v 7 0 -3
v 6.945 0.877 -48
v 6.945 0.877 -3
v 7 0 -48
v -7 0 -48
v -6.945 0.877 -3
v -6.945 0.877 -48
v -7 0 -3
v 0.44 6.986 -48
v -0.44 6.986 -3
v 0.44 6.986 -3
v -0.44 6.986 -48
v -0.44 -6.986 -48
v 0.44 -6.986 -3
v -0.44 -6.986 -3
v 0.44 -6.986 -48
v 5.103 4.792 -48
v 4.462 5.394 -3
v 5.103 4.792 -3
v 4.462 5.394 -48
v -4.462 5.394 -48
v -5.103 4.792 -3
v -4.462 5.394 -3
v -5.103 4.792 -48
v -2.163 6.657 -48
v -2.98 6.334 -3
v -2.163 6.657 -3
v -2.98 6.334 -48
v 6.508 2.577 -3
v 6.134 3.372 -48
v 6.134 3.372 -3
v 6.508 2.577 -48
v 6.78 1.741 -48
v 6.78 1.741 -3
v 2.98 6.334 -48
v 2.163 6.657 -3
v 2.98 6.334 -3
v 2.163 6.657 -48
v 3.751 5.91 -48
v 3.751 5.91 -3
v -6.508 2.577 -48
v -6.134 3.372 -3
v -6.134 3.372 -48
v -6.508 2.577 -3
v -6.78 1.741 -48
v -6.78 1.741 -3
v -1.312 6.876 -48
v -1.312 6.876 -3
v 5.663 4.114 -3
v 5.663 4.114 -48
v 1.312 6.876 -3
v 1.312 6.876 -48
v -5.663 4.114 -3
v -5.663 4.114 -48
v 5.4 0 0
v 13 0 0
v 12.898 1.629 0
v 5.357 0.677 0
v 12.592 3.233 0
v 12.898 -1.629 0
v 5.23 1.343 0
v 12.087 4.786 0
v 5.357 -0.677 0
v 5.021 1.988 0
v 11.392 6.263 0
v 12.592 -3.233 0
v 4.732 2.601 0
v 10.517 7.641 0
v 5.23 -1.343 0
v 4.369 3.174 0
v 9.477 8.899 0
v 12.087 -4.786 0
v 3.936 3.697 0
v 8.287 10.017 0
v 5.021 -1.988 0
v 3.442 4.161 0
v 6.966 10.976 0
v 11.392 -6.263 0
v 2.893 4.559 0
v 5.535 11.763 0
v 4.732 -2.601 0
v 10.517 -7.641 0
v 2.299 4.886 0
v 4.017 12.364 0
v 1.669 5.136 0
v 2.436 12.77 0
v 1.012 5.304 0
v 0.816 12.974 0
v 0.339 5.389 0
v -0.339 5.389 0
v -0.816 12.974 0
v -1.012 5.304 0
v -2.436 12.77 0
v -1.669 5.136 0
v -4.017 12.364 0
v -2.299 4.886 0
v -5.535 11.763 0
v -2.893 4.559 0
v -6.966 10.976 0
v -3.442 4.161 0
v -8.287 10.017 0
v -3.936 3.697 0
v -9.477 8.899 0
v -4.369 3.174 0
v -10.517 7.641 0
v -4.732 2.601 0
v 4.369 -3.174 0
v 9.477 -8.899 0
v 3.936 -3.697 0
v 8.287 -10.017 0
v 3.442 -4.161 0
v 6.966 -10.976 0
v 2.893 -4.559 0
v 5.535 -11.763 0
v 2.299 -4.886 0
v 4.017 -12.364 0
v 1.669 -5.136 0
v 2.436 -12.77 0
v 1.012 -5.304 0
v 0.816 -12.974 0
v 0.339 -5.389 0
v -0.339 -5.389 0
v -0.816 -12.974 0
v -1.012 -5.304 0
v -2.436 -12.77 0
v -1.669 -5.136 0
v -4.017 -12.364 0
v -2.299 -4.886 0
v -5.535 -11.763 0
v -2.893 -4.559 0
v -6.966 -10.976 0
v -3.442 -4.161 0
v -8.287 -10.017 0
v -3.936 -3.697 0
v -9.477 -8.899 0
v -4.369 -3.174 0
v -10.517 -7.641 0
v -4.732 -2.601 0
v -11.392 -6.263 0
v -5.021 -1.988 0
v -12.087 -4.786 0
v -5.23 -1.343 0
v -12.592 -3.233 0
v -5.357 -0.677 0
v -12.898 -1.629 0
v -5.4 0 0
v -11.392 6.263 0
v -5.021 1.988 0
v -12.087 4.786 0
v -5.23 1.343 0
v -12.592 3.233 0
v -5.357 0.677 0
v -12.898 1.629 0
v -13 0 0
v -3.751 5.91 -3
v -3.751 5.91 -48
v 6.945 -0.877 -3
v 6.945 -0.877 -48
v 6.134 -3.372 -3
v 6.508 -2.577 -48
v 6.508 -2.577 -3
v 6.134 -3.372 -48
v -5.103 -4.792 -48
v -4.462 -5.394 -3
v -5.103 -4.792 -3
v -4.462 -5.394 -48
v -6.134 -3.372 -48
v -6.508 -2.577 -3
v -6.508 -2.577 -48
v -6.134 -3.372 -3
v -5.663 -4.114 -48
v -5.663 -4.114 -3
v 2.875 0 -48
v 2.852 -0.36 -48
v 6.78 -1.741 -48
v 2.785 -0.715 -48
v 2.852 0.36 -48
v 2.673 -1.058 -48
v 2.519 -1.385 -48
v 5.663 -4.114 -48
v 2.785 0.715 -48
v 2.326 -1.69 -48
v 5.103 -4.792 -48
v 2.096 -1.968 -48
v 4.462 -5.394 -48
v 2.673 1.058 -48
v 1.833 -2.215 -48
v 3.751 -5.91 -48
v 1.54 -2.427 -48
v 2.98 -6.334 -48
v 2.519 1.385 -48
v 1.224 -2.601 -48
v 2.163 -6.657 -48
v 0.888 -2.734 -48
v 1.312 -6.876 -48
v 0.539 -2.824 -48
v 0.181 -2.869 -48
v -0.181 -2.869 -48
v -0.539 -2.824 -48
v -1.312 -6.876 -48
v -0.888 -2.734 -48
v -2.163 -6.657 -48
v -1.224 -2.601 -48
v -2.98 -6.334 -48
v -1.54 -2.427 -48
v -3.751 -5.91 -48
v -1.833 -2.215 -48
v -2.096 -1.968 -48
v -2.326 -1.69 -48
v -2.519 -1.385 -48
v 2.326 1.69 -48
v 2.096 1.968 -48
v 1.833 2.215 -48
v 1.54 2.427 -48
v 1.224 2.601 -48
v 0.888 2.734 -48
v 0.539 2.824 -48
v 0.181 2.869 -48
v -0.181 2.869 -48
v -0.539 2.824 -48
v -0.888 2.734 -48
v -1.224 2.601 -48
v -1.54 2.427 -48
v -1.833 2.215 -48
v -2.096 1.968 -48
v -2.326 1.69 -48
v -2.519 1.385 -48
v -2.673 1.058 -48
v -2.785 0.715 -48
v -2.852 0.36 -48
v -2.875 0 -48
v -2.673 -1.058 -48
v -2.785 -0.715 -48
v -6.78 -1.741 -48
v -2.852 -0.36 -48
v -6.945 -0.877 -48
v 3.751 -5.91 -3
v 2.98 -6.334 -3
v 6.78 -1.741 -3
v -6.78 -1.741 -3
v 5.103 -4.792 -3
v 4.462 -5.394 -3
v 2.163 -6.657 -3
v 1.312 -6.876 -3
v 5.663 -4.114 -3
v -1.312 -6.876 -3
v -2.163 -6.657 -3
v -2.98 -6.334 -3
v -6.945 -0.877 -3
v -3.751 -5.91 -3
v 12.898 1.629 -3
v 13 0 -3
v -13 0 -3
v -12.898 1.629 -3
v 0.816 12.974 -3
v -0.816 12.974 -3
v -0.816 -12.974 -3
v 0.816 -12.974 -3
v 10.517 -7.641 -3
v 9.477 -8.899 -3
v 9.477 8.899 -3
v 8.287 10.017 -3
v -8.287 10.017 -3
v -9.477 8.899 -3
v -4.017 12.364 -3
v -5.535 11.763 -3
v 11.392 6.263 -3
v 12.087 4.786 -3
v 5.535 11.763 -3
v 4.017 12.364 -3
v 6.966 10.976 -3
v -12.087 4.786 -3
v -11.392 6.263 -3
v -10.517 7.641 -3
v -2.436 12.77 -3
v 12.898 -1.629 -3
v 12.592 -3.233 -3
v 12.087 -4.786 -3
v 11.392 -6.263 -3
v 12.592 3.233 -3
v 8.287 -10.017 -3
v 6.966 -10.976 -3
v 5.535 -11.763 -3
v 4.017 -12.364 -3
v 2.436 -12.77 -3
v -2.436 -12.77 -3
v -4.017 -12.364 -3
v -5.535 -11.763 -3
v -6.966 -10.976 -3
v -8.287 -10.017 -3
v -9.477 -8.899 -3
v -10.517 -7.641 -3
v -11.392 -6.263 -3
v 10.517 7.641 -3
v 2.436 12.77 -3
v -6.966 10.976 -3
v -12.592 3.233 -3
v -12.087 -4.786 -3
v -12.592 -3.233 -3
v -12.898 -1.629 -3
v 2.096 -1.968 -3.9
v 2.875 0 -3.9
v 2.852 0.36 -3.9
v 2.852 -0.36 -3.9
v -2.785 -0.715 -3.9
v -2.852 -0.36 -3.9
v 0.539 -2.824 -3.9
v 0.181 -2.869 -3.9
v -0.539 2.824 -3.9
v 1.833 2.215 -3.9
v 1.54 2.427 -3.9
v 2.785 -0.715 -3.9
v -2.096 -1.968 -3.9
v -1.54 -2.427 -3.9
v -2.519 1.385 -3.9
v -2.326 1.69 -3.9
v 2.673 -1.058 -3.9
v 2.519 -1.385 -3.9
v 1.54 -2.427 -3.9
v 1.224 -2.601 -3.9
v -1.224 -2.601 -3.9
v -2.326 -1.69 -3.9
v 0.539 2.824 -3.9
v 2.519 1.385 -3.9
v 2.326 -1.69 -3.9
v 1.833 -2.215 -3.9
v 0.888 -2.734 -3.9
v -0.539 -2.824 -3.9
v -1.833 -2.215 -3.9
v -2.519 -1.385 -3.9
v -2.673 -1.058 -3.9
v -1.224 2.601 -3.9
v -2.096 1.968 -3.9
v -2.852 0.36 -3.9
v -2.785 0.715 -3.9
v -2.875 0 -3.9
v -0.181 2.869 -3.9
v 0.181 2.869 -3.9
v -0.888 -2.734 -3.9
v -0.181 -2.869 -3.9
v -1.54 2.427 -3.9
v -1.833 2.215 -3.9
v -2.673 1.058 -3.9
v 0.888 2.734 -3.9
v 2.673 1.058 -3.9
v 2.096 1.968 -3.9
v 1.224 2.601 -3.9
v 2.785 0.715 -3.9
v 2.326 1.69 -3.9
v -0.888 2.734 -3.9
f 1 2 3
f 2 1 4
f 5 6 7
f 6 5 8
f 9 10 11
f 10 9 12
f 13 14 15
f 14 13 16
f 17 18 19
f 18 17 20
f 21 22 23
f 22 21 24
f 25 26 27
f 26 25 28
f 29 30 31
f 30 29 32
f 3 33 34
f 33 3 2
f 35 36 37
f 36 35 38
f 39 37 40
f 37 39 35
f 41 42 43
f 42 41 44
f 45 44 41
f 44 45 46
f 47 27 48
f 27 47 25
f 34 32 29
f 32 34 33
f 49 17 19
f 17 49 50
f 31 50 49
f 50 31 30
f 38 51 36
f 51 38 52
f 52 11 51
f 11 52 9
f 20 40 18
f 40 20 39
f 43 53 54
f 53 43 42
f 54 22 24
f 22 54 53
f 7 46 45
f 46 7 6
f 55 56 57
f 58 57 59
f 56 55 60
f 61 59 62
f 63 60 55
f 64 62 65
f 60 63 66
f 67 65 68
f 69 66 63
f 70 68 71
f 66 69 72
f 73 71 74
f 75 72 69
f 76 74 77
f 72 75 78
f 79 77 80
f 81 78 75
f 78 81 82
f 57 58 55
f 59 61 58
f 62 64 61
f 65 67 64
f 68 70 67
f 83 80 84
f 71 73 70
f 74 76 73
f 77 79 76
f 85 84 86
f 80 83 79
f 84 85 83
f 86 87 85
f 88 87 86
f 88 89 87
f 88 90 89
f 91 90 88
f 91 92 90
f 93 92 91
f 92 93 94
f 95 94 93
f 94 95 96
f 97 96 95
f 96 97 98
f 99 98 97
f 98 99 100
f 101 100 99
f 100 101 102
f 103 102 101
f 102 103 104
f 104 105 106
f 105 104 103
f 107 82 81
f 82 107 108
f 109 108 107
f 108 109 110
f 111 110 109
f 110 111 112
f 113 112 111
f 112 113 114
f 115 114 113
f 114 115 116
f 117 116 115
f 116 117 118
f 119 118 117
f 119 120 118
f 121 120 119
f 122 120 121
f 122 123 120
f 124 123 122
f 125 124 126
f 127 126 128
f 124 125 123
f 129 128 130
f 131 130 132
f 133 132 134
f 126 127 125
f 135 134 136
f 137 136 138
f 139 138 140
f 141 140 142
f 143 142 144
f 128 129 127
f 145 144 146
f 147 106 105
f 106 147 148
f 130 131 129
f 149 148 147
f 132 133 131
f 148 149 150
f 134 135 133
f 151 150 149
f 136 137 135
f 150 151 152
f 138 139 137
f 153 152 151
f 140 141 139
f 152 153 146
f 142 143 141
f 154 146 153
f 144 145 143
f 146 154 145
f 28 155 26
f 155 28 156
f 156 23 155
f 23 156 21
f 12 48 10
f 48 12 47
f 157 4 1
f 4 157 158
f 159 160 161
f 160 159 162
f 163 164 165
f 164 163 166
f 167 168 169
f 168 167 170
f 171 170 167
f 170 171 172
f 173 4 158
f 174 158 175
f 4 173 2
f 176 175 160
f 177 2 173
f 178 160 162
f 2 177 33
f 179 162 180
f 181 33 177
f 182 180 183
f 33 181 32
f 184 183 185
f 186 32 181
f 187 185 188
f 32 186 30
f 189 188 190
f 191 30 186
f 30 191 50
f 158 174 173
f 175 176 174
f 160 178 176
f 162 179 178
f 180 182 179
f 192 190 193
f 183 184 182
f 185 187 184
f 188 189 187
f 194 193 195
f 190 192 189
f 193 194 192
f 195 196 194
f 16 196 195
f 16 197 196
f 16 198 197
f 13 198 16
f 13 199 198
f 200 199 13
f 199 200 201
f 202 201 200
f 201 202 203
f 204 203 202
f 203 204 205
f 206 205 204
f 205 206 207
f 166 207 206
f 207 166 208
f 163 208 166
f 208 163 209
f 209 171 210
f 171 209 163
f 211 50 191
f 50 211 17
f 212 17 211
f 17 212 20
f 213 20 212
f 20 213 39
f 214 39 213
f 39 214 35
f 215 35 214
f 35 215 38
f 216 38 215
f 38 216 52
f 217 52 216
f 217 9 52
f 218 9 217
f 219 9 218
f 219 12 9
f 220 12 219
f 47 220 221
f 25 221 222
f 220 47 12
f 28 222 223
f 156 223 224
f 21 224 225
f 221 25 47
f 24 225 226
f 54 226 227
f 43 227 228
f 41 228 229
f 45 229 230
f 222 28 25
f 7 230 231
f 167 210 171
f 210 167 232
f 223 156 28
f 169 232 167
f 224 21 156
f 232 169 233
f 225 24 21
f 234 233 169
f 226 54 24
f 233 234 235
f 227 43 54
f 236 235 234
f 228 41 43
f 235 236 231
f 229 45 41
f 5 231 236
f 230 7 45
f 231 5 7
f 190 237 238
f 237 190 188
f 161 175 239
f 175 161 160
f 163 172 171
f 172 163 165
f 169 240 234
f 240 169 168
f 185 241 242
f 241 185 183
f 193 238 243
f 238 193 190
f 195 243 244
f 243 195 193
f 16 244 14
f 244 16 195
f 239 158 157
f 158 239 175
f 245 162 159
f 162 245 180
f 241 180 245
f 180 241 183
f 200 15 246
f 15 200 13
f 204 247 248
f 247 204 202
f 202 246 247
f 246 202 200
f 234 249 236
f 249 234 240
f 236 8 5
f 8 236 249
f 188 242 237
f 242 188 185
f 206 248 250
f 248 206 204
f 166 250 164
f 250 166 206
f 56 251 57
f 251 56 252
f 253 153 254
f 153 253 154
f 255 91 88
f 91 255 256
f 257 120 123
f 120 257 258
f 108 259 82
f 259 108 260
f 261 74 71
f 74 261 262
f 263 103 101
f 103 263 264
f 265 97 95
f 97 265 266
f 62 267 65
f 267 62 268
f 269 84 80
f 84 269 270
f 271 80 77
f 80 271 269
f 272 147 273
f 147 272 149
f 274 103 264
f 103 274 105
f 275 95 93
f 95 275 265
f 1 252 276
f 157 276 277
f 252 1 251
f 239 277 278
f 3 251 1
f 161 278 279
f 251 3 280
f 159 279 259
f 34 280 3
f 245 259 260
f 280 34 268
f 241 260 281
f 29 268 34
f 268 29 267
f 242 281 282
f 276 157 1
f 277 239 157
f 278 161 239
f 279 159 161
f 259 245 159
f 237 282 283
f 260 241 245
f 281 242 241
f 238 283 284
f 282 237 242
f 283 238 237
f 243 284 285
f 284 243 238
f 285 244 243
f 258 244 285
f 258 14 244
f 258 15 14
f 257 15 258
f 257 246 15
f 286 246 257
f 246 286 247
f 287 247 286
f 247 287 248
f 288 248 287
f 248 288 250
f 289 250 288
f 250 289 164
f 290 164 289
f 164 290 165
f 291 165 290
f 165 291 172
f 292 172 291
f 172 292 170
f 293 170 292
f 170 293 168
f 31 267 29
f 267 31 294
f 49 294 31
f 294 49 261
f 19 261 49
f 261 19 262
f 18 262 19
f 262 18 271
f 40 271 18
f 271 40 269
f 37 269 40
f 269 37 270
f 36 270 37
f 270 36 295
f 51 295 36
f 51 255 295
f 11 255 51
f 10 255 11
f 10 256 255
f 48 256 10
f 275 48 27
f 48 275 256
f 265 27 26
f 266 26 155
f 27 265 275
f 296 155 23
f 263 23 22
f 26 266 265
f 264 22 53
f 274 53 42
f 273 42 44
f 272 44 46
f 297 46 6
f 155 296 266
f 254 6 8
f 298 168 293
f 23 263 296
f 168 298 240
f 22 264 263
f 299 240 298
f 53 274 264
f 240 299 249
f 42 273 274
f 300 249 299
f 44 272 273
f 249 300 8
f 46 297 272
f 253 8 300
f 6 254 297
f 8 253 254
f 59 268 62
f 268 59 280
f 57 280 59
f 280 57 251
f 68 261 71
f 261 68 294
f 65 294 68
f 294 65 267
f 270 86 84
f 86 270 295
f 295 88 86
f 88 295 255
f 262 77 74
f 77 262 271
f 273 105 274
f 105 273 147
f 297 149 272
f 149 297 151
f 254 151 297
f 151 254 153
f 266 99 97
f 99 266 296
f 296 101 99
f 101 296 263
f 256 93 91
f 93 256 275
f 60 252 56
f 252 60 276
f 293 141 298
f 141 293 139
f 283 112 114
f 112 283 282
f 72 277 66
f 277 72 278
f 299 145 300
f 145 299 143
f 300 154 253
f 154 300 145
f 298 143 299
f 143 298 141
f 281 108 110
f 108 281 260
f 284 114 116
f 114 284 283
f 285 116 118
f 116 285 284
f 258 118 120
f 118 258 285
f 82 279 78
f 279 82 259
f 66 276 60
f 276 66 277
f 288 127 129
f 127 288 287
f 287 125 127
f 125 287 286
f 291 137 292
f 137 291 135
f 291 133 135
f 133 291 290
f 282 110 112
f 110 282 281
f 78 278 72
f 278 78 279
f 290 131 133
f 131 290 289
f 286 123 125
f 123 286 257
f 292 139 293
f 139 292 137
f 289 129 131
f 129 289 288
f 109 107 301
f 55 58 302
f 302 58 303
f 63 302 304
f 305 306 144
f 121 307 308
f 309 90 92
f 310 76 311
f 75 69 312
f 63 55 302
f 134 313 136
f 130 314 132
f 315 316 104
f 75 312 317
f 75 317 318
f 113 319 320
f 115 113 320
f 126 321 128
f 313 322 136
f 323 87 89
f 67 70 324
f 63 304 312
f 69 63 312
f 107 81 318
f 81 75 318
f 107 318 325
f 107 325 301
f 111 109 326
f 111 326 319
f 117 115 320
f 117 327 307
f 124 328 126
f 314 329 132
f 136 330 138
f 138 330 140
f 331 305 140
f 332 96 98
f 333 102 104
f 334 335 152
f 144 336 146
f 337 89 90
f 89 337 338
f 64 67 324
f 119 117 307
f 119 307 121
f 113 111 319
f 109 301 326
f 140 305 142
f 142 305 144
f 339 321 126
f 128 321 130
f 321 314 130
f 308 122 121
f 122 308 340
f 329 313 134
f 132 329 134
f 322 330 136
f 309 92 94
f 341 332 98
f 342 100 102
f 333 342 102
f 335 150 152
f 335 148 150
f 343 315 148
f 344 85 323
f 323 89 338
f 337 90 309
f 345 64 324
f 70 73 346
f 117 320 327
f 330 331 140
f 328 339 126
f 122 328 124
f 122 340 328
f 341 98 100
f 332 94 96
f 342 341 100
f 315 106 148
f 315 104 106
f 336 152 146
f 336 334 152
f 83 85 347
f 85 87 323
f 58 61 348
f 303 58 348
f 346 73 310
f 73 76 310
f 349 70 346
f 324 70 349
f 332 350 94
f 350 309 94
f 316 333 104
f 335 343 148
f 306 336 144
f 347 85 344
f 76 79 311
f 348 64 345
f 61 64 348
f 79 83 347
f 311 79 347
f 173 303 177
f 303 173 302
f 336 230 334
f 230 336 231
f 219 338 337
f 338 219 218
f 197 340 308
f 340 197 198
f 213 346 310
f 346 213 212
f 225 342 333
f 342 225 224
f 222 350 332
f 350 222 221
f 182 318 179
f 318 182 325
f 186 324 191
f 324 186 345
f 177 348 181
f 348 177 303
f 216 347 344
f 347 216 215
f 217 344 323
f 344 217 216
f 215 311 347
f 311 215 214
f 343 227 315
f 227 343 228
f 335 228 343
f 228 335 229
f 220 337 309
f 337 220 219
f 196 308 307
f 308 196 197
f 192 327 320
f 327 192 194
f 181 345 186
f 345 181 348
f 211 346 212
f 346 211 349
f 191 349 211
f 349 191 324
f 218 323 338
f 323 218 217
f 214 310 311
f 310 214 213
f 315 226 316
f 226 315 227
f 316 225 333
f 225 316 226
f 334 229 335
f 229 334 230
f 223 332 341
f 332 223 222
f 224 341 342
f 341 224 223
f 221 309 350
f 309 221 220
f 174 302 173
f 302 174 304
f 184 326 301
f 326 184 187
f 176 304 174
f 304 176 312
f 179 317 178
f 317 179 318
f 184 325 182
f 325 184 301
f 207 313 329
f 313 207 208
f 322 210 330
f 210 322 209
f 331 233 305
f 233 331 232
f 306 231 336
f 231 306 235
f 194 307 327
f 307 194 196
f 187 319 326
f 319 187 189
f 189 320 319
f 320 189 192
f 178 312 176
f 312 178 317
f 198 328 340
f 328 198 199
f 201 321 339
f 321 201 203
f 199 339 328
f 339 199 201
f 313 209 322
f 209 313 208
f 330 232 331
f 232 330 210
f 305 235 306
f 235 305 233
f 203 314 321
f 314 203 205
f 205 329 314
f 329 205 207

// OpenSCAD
$fn = 50;


difference() {
	union() {
		translate(v = [0, 0, -48.0000000000]) {
			cylinder(h = 48, r = 7.0000000000);
		}
		translate(v = [0, 0, -3.0000000000]) {
			cylinder(h = 3, r = 13.0000000000);
		}
	}
	union() {
		translate(v = [0, 0, 0]) {
			rotate(a = [0, 0, 0]) {
				difference() {
					union() {
						#translate(v = [0, 0, -48.0000000000]) {
							cylinder(h = 48, r = 2.6000000000);
						}
						#translate(v = [0, 0, -3.9000000000]) {
							cylinder(h = 3.9000000000, r = 7.0000000000, r1 = 2.8750000000, r2 = 5.4000000000);
						}
						#translate(v = [0, 0, -48.0000000000]) {
							cylinder(h = 48, r = 2.8750000000);
						}
						#translate(v = [0, 0, -48.0000000000]) {
							cylinder(h = 48, r = 2.6000000000);
						}
					}
					union();
				}
			}
		}
	}
}
